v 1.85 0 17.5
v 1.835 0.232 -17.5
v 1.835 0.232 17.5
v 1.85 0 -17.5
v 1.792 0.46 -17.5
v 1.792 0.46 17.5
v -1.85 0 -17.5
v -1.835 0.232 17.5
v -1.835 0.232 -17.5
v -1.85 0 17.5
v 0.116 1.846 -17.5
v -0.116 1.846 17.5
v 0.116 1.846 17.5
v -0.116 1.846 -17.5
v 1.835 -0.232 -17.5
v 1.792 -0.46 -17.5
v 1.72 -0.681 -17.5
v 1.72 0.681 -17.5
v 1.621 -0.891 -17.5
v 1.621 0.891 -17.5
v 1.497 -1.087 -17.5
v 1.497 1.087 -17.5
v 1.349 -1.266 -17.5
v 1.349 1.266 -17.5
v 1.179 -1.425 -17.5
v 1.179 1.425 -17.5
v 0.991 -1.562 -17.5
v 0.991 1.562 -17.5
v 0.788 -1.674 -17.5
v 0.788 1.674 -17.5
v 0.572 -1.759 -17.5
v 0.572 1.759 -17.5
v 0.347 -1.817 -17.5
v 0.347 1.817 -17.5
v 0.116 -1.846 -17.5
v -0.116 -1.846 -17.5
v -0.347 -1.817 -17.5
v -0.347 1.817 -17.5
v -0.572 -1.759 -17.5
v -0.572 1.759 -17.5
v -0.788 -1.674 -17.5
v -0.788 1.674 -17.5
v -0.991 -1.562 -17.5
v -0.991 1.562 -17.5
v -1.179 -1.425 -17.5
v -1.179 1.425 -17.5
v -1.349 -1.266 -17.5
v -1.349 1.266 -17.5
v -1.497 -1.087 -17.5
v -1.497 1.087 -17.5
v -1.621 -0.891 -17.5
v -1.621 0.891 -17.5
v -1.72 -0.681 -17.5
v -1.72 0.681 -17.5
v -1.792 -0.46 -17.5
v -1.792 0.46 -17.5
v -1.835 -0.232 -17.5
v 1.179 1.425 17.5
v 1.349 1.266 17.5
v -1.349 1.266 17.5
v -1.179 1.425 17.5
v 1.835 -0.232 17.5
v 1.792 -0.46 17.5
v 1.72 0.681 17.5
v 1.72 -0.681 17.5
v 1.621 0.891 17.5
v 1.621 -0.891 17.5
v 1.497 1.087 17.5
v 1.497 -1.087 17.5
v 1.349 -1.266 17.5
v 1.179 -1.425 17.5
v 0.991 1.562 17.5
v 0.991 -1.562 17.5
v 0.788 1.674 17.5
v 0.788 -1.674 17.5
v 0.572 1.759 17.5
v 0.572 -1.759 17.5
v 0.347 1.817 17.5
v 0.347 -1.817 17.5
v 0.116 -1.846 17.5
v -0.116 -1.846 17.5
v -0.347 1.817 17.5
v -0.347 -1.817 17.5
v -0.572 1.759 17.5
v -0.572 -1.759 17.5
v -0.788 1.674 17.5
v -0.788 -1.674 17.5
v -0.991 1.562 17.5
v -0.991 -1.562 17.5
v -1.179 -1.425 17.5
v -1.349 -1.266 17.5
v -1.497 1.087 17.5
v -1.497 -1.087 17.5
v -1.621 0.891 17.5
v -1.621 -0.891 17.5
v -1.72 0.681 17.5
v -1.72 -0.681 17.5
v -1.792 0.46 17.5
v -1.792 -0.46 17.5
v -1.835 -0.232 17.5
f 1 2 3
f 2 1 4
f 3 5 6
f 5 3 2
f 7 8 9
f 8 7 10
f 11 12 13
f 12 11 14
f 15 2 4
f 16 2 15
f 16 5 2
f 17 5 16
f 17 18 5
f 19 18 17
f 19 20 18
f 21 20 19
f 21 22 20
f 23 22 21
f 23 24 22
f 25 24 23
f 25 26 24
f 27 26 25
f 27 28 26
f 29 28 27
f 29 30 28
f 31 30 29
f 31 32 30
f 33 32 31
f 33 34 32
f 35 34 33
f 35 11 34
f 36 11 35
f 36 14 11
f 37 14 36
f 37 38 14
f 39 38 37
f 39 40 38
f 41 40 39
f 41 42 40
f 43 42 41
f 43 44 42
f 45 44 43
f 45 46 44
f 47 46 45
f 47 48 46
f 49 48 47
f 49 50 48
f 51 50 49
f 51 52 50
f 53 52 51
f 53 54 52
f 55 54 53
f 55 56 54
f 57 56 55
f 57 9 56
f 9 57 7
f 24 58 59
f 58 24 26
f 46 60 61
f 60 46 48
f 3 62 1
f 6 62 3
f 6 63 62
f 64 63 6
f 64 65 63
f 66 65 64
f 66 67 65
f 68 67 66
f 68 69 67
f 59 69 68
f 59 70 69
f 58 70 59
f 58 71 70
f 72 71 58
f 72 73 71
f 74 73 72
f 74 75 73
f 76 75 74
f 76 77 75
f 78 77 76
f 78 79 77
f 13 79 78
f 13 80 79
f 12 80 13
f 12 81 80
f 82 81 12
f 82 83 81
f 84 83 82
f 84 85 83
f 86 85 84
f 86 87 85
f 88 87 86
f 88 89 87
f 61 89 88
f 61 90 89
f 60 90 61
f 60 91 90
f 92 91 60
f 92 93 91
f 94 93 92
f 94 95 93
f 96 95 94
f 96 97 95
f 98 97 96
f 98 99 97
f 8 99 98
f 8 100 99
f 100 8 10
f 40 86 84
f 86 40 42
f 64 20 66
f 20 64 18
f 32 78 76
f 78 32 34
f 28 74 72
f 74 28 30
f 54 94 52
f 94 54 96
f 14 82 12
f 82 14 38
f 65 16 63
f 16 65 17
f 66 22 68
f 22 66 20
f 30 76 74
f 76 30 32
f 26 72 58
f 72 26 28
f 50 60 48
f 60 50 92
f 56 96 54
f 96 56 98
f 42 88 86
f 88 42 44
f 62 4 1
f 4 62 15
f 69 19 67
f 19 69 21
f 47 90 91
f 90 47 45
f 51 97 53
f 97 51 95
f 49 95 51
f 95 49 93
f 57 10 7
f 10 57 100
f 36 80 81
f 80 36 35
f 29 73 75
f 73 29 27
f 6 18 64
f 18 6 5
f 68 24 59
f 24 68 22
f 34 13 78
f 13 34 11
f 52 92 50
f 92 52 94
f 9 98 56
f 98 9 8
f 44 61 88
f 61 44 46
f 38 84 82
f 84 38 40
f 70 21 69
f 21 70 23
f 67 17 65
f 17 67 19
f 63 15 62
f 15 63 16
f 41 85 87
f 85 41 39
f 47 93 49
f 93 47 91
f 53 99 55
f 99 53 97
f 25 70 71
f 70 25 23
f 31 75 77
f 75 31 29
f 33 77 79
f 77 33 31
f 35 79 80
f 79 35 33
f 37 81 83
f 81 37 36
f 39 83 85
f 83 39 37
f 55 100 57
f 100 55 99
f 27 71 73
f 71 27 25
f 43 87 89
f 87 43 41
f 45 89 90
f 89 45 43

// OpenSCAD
$fn = 50;


difference() {
	union() {
		translate(v = [0, 0, -17.5000000000]) {
			cylinder(h = 35, r = 1.8500000000);
		}
	}
	union() {
		translate(v = [0, 0, -100.0000000000]) {
			cylinder(h = 200, r = 0);
		}
	}
}
